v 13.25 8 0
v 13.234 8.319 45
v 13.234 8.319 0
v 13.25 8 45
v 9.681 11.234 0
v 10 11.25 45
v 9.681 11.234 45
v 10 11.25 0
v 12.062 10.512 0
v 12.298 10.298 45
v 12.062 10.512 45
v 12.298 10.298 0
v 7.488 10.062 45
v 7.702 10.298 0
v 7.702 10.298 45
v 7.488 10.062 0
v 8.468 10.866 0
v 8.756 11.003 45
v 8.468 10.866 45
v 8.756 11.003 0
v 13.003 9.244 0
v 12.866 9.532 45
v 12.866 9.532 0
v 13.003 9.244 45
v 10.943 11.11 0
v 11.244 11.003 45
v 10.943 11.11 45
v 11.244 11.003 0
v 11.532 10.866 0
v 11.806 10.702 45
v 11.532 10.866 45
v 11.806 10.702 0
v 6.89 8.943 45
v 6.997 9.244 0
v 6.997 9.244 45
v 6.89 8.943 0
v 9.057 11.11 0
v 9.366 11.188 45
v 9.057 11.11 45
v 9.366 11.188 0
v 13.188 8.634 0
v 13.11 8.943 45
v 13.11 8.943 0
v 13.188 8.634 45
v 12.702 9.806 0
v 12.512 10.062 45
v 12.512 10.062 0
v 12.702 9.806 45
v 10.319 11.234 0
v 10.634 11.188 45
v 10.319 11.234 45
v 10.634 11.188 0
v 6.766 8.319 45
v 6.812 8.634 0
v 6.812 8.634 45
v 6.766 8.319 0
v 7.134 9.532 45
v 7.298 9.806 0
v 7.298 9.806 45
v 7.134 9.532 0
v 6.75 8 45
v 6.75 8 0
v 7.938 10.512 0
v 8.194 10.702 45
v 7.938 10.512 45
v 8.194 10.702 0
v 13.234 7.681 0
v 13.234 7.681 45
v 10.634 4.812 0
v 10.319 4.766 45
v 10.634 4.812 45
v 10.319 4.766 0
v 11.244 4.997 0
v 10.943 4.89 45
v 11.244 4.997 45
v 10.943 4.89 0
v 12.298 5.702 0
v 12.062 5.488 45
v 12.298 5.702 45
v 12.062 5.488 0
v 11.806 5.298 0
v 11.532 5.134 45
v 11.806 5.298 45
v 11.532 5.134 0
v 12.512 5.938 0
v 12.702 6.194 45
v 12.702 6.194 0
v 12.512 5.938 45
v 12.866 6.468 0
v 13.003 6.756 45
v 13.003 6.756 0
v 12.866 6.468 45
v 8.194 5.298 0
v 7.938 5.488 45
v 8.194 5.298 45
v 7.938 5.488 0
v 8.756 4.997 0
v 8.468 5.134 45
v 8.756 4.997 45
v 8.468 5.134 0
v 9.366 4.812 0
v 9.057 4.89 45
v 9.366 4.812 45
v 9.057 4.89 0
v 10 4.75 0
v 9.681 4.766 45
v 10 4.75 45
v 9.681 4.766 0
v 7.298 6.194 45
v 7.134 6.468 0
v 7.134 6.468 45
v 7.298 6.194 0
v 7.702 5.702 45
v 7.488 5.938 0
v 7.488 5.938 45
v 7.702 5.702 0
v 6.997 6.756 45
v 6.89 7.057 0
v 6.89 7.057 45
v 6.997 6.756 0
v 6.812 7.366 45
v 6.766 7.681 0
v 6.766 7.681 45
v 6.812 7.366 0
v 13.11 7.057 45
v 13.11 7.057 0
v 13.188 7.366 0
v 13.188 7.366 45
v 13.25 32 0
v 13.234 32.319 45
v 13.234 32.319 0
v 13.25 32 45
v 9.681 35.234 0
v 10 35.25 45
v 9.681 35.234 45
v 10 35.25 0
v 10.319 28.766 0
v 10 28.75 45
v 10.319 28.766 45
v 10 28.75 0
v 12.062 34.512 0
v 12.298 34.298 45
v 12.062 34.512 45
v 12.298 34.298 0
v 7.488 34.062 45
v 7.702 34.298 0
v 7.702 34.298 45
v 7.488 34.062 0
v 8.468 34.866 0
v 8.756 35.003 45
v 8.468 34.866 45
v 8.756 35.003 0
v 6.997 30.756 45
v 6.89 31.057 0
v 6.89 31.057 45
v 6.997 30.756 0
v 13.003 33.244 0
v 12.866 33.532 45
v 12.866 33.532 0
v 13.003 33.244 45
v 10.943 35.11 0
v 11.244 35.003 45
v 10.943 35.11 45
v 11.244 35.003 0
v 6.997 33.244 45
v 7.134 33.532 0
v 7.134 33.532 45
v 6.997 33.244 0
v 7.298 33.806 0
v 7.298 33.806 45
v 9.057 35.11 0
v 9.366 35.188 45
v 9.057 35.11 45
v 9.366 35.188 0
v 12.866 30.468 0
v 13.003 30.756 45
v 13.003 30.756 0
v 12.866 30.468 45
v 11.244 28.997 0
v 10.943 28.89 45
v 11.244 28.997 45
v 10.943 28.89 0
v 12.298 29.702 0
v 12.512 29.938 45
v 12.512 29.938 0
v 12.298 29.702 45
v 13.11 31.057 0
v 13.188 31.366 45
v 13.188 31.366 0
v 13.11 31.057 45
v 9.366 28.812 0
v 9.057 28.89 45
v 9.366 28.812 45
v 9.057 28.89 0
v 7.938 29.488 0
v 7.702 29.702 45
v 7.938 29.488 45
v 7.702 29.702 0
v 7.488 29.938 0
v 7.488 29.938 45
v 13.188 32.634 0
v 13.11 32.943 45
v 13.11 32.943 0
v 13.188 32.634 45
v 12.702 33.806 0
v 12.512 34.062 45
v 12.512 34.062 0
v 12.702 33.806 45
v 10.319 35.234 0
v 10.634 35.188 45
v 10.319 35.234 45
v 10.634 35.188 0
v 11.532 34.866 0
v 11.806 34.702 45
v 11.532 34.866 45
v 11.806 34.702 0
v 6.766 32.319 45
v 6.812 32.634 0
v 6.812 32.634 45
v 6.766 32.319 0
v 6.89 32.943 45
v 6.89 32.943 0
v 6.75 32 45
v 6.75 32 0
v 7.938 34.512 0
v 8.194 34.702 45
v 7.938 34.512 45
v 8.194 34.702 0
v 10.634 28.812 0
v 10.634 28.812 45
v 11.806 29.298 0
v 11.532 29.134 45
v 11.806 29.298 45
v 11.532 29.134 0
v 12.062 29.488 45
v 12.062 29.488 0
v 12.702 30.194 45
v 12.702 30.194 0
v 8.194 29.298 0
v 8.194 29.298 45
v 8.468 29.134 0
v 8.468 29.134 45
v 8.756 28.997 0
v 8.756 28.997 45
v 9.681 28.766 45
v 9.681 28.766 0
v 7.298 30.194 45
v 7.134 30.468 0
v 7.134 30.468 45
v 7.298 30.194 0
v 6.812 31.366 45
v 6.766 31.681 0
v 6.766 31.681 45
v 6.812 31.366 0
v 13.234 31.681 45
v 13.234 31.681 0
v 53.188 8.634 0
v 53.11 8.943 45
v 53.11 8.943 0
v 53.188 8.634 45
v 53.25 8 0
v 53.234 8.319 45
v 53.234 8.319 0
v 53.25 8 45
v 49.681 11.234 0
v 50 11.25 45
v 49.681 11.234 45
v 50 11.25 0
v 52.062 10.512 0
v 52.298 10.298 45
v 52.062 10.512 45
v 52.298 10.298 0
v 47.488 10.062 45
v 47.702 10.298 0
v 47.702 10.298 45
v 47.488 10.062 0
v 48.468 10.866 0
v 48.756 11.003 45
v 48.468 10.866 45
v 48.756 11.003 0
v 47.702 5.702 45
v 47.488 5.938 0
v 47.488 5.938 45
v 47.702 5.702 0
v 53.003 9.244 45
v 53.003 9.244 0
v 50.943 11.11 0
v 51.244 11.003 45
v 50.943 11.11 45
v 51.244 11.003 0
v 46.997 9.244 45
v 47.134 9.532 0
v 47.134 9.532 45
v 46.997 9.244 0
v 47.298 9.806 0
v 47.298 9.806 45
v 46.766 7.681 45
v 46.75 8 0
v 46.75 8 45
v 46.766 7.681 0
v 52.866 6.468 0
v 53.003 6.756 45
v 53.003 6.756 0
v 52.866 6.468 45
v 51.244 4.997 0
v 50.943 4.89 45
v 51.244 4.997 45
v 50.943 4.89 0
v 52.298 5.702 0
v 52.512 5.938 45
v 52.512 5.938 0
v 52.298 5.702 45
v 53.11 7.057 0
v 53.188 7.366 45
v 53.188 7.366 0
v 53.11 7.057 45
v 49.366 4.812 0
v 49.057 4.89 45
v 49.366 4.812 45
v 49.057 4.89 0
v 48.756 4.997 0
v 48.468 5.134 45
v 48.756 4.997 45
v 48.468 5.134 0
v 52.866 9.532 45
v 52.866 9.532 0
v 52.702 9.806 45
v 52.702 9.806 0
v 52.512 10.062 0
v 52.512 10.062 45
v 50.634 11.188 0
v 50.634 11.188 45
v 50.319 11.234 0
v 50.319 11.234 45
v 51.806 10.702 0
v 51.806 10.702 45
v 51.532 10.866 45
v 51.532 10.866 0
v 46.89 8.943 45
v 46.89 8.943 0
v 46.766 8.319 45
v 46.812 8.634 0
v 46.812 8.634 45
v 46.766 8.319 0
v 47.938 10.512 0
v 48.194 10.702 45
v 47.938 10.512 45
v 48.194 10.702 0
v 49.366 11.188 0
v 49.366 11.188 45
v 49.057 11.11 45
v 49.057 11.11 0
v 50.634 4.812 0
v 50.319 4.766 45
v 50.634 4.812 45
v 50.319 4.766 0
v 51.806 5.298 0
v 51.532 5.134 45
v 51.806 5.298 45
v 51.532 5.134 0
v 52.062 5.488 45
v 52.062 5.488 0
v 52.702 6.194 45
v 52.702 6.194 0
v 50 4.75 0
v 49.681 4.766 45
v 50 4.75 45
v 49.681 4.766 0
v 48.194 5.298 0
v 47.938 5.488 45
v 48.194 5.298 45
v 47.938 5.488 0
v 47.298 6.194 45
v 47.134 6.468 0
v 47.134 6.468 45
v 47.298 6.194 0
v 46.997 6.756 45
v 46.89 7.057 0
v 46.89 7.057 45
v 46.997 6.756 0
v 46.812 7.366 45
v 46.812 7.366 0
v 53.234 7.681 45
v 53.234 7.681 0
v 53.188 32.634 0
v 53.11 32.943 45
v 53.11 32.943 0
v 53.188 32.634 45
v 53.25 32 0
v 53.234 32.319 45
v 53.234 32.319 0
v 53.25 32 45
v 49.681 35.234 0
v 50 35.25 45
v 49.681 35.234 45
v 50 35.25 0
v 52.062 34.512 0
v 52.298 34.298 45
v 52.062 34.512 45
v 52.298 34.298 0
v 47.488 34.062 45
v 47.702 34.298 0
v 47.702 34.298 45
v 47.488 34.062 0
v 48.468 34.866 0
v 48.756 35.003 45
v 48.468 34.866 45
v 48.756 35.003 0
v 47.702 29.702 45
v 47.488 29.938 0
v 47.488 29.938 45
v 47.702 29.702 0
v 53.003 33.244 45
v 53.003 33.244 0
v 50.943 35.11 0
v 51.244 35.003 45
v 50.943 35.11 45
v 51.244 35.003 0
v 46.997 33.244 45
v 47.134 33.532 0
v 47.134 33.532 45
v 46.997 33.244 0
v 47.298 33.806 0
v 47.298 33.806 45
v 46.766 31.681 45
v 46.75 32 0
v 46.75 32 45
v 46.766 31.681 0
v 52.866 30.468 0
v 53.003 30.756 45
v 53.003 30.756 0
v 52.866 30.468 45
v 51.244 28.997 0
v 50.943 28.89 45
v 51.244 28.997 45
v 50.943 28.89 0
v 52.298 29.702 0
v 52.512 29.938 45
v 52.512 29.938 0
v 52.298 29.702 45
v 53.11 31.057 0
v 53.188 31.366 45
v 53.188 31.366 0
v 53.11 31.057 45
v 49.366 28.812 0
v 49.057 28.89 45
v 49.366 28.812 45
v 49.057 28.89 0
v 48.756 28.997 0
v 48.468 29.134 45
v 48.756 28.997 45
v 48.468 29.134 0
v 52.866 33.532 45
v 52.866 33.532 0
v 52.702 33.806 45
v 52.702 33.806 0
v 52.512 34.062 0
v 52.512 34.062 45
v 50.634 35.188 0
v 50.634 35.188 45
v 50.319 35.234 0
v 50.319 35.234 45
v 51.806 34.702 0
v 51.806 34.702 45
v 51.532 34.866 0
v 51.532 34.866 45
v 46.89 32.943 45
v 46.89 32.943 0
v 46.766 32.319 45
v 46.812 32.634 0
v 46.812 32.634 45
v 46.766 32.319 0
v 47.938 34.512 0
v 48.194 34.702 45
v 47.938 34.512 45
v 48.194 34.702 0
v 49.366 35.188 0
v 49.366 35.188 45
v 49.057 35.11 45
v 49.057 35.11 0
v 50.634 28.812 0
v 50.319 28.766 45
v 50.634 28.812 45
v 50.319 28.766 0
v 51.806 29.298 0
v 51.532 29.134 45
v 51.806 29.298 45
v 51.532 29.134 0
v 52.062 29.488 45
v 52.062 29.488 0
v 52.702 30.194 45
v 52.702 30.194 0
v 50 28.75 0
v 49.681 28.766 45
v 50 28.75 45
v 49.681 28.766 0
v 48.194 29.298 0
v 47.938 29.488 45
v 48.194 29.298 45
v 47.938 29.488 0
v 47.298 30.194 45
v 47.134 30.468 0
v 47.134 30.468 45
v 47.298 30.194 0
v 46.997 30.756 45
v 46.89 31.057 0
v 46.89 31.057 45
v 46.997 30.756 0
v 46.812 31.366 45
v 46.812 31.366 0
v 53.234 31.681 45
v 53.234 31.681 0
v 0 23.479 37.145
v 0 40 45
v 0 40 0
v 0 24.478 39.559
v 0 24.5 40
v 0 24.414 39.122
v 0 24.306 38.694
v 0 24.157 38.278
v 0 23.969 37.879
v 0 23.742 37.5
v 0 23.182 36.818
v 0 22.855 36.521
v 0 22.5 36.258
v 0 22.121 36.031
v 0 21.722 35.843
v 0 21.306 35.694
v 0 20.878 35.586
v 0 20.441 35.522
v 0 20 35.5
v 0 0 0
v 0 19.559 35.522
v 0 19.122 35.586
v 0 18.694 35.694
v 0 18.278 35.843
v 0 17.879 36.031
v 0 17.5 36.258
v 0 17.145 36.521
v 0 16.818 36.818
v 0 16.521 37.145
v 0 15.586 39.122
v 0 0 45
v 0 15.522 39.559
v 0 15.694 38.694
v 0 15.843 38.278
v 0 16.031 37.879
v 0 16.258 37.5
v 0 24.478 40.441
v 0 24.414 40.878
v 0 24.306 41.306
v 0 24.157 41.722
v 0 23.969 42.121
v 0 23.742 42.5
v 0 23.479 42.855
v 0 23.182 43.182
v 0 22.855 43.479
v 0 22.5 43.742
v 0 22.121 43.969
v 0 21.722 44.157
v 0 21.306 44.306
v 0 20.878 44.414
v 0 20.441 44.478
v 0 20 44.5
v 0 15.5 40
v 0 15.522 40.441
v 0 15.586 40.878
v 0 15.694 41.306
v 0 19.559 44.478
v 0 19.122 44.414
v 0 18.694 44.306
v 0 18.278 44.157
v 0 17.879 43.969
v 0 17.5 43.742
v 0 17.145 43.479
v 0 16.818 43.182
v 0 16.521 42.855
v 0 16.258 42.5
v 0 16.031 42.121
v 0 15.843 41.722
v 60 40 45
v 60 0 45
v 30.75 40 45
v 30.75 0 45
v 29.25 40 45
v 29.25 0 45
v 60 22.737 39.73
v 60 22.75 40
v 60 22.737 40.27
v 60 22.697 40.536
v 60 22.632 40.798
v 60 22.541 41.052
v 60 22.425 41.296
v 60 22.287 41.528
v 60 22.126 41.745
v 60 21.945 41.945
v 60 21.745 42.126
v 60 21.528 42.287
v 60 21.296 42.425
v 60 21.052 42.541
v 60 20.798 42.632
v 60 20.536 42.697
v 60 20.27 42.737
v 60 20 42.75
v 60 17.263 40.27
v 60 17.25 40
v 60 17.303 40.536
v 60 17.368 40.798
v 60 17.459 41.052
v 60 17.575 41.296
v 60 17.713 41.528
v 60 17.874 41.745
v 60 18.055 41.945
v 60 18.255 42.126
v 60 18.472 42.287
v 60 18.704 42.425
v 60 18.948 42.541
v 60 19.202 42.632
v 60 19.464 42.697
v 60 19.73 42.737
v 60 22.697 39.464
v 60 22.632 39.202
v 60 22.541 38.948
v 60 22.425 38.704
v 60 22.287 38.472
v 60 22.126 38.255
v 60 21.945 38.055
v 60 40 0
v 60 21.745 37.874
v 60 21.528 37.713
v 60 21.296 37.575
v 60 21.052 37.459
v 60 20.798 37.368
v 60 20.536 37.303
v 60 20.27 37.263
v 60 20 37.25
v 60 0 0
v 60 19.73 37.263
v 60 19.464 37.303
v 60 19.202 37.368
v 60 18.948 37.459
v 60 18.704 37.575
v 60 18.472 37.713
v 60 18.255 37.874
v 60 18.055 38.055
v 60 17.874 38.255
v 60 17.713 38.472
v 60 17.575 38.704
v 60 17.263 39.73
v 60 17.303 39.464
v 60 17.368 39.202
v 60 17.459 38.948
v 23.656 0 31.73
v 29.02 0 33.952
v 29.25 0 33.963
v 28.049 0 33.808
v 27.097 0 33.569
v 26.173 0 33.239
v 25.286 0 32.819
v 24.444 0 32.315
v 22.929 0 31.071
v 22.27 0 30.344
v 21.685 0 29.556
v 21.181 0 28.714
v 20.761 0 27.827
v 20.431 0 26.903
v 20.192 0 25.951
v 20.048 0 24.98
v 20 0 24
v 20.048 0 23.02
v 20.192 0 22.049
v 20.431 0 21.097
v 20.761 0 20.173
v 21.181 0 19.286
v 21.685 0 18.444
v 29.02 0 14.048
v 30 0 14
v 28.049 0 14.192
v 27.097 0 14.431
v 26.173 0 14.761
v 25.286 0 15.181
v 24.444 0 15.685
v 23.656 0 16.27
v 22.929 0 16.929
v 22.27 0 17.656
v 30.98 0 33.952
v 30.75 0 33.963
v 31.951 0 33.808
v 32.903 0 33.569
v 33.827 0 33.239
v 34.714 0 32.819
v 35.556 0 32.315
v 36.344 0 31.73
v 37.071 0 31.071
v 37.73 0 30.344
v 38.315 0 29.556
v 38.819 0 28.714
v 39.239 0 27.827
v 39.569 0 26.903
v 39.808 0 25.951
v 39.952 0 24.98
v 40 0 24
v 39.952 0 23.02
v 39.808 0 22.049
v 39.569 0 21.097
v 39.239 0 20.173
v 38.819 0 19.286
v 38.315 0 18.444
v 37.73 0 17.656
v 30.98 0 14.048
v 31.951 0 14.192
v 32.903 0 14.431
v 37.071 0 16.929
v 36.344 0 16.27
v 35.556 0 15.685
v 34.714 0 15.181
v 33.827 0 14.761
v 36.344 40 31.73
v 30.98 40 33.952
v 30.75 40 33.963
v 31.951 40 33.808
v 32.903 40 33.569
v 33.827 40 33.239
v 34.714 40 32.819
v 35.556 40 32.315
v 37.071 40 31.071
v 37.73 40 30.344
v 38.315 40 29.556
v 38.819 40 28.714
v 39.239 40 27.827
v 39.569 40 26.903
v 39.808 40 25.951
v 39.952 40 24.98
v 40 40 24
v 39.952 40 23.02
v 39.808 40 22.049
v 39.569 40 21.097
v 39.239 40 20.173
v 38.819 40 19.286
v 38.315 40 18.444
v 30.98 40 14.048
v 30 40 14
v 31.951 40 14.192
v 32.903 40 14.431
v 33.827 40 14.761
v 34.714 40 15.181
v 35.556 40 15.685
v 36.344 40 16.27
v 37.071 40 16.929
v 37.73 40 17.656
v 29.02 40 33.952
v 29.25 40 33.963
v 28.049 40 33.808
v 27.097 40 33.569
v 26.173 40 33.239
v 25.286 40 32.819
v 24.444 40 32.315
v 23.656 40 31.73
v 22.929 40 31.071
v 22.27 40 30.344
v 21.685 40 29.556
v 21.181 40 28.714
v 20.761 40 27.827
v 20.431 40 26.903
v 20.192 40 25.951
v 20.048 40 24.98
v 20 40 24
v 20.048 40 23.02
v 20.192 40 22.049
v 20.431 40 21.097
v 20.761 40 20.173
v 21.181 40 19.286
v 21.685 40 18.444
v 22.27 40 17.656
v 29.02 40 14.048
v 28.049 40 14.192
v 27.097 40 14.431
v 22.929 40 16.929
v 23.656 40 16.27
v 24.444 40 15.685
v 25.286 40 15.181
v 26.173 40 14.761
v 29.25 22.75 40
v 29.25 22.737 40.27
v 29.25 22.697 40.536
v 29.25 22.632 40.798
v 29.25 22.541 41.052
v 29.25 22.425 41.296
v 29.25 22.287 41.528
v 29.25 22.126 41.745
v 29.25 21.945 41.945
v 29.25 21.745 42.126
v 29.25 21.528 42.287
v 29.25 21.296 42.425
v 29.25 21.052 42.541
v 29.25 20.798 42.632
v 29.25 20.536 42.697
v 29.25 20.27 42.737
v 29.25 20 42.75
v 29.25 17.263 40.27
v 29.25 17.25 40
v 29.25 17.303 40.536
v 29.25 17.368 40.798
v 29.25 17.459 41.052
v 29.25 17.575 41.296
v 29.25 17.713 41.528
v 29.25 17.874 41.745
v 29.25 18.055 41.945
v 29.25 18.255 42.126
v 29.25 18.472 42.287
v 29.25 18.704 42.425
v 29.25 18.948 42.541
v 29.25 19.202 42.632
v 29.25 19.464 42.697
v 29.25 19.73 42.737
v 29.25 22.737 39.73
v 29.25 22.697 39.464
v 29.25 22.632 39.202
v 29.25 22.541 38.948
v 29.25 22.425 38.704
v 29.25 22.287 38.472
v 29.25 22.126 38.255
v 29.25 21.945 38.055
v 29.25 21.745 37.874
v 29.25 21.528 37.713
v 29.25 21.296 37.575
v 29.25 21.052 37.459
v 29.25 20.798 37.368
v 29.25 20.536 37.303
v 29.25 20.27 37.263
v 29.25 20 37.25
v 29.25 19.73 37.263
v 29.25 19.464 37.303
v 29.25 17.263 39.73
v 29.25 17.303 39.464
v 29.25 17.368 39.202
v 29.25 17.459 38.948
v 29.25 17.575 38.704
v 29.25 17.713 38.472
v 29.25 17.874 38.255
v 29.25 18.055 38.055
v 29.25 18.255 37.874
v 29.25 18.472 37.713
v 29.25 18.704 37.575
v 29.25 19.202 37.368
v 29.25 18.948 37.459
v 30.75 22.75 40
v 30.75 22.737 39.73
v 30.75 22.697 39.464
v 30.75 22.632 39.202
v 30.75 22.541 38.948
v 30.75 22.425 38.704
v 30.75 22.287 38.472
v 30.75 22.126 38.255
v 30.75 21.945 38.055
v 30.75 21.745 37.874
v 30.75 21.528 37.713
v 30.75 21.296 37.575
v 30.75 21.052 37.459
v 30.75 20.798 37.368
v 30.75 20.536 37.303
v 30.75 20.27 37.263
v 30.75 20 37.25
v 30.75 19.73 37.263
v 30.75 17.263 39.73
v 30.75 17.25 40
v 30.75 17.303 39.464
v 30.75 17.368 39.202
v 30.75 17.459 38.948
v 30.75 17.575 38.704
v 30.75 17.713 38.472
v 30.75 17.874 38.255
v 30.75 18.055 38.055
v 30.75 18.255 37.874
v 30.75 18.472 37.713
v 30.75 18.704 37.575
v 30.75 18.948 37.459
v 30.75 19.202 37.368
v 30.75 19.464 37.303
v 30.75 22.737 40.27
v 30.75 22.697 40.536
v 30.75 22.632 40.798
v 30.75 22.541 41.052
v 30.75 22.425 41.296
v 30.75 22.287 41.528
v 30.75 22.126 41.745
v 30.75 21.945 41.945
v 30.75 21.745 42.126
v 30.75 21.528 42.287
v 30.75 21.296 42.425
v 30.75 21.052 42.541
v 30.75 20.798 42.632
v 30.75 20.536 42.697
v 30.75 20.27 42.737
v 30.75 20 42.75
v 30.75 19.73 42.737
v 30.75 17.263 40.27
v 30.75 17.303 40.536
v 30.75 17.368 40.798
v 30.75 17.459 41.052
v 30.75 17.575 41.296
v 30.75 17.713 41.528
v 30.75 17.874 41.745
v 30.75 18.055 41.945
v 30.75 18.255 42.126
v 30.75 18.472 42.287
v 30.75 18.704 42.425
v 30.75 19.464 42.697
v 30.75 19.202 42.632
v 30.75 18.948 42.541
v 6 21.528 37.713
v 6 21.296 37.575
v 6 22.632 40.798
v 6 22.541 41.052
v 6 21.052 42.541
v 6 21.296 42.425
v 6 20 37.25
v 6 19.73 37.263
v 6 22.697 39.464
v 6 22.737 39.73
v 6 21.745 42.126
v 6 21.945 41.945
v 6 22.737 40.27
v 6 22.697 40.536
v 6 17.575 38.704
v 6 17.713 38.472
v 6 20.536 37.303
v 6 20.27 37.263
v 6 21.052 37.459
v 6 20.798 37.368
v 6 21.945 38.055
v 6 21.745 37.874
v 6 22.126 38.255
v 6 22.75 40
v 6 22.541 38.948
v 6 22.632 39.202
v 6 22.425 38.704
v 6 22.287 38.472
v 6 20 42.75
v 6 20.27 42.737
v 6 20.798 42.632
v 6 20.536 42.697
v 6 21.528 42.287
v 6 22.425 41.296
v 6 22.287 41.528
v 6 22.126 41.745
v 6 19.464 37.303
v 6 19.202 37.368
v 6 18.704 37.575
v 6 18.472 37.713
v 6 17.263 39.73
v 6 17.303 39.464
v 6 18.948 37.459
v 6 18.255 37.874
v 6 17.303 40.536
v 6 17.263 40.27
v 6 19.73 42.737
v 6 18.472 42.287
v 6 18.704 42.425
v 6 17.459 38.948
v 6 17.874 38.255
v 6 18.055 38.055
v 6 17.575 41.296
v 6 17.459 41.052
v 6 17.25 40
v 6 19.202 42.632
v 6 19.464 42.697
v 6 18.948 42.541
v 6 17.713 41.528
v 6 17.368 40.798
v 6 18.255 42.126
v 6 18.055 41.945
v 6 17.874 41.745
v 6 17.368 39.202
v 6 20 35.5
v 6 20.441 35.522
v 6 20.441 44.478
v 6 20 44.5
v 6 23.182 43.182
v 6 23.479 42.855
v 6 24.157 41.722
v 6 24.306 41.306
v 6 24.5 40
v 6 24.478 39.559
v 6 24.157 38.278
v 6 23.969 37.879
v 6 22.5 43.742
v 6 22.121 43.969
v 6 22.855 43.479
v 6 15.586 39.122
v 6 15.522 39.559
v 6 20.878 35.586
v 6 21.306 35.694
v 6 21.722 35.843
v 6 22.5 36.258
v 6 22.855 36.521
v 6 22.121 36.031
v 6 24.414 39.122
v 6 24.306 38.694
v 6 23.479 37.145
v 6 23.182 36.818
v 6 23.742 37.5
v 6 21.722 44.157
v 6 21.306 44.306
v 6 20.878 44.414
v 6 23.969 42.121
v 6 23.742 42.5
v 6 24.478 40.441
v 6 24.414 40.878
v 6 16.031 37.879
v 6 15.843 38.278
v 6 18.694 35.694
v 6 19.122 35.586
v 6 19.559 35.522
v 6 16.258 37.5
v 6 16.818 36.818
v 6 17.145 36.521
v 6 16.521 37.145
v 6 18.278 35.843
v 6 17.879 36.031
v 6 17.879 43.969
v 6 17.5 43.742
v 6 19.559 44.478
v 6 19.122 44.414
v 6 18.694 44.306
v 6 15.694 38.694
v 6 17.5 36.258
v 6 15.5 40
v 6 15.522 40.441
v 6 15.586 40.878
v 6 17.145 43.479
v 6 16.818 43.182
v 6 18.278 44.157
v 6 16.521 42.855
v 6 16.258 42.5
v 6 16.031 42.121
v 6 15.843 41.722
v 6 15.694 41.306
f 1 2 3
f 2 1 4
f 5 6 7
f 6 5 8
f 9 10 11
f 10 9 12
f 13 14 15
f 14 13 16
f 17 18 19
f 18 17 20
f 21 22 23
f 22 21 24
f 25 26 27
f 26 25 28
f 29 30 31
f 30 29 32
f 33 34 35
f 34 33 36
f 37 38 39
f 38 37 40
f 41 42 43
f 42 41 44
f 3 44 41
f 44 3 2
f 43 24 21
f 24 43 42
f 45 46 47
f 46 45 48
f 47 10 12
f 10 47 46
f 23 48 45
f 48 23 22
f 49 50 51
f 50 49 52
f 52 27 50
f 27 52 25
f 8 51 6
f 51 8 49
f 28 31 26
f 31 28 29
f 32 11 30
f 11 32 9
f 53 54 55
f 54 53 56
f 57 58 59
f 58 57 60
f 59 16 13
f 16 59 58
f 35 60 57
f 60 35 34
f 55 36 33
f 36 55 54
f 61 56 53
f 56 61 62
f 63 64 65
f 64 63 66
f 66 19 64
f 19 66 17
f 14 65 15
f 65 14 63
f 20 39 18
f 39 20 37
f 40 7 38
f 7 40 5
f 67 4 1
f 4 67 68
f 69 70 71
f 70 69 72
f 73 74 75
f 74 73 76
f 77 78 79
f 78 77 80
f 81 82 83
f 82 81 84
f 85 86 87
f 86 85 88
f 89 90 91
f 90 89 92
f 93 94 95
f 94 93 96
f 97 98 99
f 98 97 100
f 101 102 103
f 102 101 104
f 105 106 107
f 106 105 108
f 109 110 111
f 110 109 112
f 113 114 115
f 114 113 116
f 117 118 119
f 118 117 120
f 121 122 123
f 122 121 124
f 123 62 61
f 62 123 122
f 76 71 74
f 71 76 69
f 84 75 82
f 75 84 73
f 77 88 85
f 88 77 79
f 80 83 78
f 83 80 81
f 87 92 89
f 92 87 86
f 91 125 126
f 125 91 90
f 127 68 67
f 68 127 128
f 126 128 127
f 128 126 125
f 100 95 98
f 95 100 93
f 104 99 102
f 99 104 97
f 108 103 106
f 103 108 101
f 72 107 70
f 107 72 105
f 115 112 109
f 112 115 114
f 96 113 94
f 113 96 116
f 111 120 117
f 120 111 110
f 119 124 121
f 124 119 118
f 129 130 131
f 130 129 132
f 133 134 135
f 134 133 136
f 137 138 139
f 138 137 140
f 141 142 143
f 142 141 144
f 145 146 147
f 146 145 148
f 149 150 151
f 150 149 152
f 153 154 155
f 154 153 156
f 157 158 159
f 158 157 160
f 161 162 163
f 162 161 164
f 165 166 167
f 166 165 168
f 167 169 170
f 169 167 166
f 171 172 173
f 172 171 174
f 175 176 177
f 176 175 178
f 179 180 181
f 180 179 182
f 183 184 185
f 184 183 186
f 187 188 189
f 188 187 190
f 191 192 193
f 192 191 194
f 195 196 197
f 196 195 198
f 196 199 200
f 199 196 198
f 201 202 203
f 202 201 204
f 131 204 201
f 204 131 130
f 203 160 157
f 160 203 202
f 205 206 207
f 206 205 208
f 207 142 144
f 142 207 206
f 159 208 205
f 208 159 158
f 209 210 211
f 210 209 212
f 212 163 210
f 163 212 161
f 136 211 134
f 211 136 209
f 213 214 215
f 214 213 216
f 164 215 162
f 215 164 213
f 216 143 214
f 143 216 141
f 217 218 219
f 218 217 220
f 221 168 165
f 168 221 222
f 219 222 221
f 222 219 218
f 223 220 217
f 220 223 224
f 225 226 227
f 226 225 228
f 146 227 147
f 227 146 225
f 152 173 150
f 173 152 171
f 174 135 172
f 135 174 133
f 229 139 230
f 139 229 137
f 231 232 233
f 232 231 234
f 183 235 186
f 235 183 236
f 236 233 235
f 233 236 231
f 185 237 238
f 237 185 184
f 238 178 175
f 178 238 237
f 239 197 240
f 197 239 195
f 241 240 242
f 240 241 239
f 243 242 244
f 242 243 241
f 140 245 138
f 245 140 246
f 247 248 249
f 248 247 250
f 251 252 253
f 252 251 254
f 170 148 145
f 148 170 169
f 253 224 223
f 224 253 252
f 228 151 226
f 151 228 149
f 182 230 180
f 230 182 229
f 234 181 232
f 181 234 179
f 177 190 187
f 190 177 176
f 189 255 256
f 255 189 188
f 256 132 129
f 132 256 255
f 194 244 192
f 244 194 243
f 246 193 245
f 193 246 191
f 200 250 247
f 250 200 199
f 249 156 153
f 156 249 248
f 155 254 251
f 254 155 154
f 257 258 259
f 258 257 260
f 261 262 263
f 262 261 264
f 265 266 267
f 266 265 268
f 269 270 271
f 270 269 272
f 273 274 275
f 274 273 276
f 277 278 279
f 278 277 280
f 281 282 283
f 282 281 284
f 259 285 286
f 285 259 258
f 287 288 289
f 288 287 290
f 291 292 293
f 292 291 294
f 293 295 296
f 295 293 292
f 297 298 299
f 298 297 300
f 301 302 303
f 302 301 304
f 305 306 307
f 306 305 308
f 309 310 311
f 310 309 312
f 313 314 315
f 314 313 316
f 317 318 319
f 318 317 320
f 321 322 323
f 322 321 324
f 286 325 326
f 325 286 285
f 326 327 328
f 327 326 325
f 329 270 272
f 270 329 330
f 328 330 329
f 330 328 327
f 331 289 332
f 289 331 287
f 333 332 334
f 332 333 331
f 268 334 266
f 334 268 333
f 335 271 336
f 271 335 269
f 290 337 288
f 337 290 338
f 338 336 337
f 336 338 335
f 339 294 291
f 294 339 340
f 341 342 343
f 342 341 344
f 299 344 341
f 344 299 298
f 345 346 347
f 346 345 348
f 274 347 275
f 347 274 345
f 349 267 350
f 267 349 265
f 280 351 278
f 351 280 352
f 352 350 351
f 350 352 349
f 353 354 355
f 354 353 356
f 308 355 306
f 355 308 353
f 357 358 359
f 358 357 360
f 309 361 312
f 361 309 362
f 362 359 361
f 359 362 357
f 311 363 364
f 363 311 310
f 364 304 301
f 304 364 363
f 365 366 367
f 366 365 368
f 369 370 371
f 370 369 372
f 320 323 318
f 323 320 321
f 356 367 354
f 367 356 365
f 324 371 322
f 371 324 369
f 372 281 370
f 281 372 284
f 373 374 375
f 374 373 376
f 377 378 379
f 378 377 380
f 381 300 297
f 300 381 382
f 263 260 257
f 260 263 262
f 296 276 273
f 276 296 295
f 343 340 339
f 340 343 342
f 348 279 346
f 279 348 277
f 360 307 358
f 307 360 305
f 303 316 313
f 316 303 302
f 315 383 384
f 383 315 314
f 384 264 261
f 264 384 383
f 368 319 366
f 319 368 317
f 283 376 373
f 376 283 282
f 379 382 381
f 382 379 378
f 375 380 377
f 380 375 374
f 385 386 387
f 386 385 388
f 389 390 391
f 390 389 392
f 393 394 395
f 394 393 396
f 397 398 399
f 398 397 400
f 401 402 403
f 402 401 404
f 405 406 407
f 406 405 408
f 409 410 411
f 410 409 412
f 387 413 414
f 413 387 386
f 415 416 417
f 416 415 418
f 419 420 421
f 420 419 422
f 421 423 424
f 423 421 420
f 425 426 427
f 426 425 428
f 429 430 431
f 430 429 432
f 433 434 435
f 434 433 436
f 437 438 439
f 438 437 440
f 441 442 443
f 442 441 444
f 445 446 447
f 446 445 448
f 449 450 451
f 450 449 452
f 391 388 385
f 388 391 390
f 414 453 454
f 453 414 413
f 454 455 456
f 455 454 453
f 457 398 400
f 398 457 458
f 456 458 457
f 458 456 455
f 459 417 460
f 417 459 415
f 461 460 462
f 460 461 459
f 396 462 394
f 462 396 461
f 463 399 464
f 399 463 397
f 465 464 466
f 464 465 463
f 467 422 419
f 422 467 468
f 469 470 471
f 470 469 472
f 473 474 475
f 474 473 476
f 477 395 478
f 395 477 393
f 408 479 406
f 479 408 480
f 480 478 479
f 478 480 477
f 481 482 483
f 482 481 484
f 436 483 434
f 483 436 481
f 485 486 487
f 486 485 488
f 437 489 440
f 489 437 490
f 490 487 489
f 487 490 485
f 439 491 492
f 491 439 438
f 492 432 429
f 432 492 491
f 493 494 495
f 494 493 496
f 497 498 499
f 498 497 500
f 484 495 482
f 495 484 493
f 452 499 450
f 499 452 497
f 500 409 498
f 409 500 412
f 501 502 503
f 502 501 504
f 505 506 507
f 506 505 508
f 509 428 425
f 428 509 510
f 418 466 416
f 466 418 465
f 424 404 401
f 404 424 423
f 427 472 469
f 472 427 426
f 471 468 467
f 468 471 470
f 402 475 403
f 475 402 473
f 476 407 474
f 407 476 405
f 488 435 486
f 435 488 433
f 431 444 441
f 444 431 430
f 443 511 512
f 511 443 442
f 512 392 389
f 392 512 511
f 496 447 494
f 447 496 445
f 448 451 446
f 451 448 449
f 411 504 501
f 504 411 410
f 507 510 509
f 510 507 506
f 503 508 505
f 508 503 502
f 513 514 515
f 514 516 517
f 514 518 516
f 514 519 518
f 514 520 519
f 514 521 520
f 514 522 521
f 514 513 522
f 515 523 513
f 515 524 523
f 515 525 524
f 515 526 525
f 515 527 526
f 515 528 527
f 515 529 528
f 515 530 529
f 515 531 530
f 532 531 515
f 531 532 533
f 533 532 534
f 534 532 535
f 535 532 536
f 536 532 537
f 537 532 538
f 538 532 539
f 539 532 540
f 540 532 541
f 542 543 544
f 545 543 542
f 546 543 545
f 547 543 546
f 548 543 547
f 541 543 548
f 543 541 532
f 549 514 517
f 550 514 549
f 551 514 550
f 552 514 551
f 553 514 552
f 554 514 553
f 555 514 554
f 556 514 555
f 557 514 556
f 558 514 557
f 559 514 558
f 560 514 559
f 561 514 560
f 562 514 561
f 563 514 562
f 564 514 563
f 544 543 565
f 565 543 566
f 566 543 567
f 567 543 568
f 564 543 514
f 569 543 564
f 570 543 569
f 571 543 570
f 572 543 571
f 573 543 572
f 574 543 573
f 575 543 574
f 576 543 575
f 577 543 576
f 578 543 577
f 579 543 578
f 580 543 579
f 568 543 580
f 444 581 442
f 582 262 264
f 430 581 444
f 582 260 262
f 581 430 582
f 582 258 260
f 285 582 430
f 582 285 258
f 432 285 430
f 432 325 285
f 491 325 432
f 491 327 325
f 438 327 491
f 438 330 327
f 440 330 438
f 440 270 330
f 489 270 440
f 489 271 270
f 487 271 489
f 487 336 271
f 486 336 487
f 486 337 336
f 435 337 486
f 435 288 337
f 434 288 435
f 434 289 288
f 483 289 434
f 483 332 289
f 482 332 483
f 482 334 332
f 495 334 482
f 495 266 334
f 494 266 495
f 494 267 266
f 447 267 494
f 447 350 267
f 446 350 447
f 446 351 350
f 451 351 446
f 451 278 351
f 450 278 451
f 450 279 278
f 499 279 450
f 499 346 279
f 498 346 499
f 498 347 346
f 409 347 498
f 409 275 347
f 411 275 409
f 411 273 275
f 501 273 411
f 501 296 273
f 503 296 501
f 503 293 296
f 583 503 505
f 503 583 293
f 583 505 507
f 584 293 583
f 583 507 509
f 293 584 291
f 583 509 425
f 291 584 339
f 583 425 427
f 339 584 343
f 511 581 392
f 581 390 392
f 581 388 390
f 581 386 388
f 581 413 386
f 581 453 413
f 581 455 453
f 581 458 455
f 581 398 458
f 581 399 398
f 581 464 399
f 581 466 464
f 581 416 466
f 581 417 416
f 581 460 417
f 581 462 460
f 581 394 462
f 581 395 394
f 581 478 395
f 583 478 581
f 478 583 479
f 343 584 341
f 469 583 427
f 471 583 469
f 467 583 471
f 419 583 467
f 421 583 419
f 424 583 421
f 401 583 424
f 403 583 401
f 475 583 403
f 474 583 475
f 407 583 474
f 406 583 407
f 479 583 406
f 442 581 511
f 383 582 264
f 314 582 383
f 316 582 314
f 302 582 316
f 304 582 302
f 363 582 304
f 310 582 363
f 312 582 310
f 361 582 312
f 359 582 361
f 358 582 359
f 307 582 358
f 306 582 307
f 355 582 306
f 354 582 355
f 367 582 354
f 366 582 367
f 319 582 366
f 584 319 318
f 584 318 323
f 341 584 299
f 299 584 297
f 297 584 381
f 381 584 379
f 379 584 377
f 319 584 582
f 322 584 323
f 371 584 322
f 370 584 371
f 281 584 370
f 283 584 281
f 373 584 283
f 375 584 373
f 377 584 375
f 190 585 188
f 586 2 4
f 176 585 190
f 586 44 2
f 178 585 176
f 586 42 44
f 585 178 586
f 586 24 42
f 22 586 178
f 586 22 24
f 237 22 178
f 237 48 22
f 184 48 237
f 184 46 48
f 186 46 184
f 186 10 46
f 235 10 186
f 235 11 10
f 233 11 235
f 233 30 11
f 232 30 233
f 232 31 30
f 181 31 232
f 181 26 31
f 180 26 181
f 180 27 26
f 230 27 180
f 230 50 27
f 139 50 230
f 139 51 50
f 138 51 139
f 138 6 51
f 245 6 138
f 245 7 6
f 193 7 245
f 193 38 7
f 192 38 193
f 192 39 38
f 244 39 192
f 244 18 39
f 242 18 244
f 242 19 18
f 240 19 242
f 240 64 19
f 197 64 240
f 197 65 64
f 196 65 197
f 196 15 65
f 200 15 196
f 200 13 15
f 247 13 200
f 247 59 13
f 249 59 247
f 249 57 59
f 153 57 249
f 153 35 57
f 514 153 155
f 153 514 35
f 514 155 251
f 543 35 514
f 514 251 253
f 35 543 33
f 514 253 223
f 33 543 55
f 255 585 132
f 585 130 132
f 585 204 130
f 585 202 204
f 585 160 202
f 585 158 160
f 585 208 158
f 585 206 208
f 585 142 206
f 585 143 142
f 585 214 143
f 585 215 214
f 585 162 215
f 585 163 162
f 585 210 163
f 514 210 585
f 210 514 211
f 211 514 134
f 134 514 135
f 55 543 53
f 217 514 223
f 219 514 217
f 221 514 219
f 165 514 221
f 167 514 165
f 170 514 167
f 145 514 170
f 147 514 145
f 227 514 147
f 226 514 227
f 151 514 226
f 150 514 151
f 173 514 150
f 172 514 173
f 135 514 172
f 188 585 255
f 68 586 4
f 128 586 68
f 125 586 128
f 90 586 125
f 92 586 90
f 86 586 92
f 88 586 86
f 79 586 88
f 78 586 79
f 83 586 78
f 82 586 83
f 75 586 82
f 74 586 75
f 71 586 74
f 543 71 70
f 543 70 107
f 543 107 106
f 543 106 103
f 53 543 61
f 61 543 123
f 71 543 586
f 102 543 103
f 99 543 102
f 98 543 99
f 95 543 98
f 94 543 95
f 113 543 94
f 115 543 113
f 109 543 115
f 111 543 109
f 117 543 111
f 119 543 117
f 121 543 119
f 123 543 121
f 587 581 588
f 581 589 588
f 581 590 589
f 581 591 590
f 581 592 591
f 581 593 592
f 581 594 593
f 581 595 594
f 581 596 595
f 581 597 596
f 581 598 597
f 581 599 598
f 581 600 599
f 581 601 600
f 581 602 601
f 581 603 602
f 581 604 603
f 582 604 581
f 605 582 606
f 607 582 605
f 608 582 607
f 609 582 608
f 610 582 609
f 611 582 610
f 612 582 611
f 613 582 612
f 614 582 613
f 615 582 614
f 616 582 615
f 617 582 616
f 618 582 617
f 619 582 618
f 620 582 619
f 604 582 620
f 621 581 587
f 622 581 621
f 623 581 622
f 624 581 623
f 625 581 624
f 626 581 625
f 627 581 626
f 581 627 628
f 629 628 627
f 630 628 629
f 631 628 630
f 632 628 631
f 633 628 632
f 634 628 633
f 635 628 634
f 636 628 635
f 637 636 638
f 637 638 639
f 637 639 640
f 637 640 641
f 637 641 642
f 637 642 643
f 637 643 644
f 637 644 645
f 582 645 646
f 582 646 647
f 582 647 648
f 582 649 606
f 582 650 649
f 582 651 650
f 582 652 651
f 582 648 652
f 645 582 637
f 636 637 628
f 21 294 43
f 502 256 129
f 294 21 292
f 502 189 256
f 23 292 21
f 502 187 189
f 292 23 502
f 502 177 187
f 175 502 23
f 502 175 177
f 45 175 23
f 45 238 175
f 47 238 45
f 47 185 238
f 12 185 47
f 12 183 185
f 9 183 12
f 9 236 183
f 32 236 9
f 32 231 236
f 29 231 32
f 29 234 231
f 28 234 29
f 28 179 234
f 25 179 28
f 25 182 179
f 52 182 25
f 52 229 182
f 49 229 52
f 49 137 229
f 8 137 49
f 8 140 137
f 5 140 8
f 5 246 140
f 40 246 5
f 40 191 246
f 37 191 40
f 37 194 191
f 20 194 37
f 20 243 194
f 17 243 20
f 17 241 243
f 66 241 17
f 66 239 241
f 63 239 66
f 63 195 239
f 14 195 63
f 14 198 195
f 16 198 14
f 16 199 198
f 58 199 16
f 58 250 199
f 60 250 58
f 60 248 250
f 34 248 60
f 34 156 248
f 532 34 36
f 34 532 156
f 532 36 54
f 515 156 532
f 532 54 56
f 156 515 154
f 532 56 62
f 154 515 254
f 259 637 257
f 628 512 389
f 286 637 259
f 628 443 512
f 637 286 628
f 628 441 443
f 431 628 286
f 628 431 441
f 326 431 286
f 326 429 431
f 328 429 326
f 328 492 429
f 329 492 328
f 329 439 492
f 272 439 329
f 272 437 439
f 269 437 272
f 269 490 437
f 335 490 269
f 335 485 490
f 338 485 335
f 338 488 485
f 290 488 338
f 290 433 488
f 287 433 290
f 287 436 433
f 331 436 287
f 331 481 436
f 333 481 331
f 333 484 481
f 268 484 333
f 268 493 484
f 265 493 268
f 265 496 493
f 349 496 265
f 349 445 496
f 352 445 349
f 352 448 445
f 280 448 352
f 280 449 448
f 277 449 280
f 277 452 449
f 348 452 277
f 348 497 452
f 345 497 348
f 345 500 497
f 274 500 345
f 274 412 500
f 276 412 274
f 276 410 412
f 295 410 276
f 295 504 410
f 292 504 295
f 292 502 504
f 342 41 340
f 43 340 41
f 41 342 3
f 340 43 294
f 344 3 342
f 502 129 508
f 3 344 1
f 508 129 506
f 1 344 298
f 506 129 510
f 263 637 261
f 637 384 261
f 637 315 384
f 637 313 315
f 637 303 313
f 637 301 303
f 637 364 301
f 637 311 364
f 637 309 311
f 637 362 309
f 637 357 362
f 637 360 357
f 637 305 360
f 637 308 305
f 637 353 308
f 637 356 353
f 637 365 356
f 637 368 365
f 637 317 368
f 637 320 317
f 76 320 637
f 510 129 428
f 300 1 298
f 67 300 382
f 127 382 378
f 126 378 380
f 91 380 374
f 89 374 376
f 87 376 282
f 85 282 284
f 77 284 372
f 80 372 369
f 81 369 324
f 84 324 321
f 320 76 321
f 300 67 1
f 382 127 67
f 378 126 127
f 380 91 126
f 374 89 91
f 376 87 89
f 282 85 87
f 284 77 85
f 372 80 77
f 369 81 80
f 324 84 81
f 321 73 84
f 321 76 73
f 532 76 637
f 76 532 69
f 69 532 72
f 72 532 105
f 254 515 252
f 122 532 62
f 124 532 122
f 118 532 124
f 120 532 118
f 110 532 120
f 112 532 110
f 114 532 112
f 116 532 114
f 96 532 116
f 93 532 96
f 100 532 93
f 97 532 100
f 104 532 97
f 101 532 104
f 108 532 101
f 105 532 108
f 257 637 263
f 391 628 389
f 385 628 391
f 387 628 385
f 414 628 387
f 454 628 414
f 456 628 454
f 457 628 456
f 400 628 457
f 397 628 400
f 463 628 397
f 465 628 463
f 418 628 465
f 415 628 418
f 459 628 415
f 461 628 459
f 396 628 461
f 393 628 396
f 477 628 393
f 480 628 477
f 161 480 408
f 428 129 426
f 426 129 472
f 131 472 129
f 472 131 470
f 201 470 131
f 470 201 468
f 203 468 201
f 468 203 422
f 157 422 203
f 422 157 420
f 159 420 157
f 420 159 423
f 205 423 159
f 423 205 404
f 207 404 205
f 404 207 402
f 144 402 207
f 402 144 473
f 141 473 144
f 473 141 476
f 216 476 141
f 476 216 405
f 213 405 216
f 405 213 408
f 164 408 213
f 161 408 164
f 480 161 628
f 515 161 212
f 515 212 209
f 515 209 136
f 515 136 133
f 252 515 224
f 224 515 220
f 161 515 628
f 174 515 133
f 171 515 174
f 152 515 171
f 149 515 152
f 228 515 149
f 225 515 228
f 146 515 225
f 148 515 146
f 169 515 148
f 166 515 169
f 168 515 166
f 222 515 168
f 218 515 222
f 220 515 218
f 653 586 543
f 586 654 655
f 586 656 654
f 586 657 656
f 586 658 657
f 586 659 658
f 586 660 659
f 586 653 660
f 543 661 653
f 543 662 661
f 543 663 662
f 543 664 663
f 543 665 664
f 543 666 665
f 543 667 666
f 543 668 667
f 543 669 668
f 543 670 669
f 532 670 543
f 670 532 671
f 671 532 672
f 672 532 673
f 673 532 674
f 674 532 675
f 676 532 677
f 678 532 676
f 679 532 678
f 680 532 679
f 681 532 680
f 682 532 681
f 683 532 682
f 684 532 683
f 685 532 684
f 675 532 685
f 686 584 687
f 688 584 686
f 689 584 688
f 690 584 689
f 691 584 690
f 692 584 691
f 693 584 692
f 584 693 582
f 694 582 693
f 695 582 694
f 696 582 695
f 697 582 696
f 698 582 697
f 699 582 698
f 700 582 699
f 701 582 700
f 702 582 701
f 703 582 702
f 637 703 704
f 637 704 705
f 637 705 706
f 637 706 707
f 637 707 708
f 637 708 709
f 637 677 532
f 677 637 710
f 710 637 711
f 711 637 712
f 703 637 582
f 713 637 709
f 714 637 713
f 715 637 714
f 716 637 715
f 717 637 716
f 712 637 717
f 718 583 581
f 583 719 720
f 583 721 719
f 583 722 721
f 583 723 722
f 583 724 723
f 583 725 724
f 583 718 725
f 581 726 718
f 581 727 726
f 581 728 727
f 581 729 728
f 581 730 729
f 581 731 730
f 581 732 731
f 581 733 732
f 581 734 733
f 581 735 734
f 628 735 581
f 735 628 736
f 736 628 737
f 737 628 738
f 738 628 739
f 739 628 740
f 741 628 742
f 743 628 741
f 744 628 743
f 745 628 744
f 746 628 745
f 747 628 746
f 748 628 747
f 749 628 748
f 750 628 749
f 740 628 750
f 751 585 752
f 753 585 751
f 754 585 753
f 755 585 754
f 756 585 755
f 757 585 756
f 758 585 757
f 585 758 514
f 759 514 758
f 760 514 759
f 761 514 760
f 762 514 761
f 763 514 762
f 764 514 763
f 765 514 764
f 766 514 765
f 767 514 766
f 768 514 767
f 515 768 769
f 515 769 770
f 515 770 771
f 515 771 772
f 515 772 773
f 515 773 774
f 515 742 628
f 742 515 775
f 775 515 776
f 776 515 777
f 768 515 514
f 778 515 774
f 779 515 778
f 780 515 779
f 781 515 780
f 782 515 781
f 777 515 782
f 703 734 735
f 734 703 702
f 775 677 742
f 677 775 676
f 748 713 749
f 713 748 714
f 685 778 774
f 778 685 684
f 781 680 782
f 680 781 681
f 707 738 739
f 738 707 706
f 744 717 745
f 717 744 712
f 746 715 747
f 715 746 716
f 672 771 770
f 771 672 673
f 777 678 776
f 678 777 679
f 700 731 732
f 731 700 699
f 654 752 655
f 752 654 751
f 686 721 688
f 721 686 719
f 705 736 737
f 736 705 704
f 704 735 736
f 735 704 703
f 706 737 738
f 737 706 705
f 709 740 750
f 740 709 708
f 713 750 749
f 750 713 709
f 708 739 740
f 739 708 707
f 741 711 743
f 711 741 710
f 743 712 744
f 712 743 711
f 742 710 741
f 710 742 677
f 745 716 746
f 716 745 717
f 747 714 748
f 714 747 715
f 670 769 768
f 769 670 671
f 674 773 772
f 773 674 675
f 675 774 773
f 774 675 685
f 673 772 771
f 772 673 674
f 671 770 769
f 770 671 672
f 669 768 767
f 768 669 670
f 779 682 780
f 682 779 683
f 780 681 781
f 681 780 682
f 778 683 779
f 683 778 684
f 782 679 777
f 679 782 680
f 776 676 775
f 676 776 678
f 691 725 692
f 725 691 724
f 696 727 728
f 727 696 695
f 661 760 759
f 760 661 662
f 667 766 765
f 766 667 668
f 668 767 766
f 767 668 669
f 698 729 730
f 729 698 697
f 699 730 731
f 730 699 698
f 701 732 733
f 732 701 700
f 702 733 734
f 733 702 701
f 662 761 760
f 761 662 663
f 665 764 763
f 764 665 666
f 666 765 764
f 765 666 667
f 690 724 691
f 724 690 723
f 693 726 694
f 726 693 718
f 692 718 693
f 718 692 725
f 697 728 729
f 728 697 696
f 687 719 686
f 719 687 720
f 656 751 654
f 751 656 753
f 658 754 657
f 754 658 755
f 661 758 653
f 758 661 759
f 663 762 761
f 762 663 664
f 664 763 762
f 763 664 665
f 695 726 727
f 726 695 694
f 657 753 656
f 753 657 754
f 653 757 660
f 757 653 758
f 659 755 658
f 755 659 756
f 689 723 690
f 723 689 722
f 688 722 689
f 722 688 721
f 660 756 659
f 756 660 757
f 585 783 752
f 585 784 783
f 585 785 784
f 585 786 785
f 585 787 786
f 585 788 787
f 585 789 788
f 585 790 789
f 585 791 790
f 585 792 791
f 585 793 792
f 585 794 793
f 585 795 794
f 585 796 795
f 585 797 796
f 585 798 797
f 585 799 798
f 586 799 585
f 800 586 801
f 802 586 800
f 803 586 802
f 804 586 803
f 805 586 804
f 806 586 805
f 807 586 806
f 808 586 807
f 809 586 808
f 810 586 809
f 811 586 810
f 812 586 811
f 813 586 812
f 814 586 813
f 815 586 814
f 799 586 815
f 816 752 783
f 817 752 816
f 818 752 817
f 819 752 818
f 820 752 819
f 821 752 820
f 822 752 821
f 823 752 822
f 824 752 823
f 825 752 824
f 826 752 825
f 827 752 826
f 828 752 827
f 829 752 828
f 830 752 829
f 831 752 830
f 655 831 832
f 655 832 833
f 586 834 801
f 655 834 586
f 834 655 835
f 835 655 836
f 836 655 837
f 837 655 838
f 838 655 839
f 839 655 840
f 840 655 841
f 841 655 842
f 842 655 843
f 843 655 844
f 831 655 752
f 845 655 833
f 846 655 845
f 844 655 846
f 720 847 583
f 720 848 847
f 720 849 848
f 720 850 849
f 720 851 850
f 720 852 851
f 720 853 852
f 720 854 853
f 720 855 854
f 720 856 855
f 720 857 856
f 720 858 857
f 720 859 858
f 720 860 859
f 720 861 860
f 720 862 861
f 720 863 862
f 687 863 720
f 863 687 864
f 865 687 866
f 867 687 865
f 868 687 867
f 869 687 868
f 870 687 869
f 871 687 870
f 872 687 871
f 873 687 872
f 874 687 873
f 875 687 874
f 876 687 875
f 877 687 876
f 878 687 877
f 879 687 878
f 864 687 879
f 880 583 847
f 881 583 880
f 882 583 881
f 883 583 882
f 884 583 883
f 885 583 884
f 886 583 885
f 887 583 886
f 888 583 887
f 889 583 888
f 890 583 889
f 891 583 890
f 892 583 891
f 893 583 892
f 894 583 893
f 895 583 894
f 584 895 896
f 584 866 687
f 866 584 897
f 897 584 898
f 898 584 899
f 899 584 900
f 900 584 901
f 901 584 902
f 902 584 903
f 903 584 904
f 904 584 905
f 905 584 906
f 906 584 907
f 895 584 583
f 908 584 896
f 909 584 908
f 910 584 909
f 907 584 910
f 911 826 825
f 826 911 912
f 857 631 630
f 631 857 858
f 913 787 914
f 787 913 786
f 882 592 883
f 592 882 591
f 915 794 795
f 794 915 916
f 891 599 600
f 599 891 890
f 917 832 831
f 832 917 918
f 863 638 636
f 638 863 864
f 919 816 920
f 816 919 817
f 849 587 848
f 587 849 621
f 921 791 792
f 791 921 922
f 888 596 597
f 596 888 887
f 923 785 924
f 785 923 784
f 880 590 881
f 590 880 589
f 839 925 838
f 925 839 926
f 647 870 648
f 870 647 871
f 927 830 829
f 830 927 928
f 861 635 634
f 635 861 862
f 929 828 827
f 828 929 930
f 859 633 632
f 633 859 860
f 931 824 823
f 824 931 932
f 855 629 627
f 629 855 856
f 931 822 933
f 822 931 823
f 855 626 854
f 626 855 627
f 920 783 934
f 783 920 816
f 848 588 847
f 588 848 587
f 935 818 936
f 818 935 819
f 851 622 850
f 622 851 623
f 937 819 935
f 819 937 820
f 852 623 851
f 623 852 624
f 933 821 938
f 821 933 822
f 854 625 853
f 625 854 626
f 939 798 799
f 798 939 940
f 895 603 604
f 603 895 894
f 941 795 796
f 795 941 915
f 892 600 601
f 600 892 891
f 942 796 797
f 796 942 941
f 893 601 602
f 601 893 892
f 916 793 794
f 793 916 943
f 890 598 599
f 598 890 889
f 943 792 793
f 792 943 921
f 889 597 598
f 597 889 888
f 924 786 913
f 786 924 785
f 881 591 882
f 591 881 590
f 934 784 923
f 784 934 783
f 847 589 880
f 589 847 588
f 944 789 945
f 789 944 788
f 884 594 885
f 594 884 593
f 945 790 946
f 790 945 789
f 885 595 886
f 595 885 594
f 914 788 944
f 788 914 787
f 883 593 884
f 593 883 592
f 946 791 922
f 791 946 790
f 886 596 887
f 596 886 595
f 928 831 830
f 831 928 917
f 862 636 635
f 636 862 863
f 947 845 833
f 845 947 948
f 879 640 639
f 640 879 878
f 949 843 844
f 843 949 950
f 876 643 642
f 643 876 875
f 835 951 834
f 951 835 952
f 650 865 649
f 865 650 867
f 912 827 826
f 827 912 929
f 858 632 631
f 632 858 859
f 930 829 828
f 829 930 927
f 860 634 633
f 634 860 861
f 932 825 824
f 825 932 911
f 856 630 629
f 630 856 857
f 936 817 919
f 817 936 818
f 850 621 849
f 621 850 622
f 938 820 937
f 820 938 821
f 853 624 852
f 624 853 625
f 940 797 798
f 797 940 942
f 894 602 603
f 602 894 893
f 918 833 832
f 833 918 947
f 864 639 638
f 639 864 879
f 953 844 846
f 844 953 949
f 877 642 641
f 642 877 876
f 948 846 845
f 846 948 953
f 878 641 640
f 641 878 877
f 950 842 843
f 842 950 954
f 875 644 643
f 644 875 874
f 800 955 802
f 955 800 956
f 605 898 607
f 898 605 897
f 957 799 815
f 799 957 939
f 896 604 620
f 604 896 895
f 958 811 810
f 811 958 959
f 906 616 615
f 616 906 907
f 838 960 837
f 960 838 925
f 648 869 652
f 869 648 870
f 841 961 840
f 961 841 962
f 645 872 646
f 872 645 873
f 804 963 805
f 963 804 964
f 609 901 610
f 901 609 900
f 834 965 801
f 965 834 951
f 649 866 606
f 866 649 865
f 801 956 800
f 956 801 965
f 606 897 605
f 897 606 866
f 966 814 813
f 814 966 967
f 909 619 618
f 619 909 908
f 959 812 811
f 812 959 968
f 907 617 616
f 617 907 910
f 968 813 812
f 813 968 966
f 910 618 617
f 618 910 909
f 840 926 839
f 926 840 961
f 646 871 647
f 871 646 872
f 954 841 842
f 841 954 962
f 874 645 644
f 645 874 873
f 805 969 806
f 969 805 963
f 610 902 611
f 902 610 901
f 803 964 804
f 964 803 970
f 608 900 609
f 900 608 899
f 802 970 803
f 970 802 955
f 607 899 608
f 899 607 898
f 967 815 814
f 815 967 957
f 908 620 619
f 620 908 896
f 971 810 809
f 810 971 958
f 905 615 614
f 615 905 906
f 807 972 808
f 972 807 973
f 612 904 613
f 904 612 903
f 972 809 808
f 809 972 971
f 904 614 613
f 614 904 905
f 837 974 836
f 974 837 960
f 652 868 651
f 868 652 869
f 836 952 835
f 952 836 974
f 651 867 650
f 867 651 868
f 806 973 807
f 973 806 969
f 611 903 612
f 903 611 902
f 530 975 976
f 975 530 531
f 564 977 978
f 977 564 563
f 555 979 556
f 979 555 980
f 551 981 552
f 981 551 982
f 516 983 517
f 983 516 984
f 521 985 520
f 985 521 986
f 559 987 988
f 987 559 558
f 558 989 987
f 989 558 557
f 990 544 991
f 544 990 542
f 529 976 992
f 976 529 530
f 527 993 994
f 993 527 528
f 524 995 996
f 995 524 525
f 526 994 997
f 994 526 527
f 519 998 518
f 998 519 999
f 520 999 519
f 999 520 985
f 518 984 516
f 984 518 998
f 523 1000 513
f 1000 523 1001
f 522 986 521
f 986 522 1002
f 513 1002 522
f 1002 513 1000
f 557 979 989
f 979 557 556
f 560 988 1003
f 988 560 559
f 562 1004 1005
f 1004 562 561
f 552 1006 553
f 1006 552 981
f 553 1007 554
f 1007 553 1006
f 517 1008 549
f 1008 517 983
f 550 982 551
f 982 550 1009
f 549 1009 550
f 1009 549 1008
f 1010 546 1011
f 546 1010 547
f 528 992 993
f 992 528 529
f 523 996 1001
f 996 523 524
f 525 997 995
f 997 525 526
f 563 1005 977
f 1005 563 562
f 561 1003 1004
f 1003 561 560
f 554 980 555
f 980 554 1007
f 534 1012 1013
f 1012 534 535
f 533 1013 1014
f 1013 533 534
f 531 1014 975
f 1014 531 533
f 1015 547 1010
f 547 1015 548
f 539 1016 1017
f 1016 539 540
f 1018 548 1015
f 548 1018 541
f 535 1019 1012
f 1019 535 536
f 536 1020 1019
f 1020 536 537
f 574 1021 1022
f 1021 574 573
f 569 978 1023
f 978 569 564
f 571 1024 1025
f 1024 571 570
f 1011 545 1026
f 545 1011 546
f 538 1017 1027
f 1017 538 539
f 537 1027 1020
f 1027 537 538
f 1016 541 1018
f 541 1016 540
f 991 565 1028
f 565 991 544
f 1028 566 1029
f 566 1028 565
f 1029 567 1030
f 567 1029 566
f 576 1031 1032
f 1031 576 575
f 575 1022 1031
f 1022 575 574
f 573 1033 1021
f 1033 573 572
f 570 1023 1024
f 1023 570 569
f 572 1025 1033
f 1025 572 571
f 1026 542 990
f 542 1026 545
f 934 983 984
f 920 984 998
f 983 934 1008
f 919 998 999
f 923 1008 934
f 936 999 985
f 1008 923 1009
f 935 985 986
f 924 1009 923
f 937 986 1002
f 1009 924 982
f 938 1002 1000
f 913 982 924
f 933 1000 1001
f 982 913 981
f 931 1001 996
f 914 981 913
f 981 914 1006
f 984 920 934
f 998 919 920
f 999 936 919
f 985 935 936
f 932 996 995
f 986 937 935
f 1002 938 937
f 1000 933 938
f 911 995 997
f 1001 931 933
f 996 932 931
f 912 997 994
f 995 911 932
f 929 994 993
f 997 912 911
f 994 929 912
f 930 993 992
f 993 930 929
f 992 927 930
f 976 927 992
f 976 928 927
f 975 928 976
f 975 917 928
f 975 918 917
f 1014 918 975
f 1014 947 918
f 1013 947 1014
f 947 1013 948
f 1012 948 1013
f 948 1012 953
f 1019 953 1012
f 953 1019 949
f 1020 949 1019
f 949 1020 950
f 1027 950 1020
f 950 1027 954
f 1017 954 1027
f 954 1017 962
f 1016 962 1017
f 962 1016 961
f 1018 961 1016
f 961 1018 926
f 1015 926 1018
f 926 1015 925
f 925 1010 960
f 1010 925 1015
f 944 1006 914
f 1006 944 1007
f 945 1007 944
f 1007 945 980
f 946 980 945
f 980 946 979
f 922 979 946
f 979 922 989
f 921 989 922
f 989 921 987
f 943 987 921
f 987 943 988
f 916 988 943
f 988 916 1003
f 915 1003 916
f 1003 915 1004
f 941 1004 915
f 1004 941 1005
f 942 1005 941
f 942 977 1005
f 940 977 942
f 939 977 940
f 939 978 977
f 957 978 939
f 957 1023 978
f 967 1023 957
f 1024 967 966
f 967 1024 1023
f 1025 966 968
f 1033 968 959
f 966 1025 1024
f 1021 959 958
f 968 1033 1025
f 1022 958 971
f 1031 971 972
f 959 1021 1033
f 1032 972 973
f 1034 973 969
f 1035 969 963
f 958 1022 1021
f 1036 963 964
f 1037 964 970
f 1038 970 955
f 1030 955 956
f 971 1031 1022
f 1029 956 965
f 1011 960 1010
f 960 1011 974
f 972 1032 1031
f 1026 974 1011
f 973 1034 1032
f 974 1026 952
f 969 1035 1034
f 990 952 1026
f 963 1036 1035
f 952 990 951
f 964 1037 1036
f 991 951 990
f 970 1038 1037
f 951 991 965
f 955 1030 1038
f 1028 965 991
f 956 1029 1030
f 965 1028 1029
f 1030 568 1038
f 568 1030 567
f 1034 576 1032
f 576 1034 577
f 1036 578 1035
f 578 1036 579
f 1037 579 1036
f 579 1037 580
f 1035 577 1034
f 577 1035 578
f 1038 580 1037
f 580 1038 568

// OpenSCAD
// Original MechIntel educational model. CC0-1.0. Units: mm.
// Not a standardized or load-rated component.
$fn=96;
length=60; depth=40; height=45; bore=20; slit=1.5;
$fn=64;
difference(){
 cube([length,depth,height]);
 translate([length/2,-1,24]) rotate([-90,0,0]) cylinder(d=bore,h=depth+2);
 translate([length/2-slit/2,-1,24]) cube([slit,depth+2,height-24+1]);
 translate([-1,depth/2,40]) rotate([0,90,0]) cylinder(d=5.5,h=length+2);
 translate([-1,depth/2,40]) rotate([0,90,0]) cylinder(d=9,h=7);
 for(x=[10,length-10]) for(y=[8,depth-8]) translate([x,y,-1]) cylinder(d=6.5,h=height+2);
}
